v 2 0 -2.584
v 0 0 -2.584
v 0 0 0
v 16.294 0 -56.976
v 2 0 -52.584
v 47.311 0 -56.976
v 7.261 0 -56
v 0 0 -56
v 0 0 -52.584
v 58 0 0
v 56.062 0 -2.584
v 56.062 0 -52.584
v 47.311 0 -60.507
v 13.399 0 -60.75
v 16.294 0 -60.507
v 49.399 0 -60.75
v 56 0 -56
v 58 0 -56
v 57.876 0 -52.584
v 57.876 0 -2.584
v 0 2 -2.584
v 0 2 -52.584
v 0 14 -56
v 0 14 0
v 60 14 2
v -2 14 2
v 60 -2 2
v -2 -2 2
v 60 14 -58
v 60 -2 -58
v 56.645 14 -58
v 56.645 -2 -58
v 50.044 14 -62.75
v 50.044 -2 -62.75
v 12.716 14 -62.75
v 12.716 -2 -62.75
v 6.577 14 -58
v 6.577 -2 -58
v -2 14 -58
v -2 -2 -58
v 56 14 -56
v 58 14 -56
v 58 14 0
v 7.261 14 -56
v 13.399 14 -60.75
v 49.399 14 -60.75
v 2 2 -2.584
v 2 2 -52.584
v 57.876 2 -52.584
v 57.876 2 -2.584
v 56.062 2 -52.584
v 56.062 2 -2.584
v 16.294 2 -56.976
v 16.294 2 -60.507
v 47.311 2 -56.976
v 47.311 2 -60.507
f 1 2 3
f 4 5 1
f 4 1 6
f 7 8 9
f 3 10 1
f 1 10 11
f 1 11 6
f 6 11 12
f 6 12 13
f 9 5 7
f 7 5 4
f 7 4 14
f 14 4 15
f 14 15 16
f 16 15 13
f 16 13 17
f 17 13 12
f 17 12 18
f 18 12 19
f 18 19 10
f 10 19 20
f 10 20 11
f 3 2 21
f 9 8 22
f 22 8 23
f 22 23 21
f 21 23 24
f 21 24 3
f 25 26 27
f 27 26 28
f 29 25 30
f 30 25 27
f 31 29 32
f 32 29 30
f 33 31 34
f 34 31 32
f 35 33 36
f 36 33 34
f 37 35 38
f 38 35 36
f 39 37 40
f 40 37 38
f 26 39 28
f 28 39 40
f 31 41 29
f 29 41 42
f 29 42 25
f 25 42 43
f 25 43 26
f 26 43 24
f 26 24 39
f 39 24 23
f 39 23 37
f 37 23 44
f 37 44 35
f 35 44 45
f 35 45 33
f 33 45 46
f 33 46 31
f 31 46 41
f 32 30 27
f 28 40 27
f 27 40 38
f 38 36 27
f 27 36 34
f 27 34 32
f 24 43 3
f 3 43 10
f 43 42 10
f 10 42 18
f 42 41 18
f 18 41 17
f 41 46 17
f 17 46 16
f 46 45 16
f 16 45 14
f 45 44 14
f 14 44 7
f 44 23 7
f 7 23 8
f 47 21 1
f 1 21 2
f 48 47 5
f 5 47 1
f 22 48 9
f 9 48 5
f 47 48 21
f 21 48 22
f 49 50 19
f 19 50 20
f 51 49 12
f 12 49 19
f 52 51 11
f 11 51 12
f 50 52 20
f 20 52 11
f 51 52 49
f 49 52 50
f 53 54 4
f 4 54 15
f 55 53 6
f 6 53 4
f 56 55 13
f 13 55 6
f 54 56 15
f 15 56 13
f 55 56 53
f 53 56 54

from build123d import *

# Parameters (mm, degrees)
BOSS_EXTRUDE1_DEPTH = 14
SHELL1_T            = 2
SKETCH3_W           = 2
SKETCH3_H           = 50
SKETCH3_W_2         = 1.814522713
BOSS_EXTRUDE2_DEPTH = 2
SKETCH4_W           = 31.017616101
SKETCH4_H           = 3.530460369
BOSS_EXTRUDE3_DEPTH = 2


with BuildPart() as part:
    # Sketch1 → Boss-Extrude1 (new body)
    with BuildSketch(Plane(origin=(0, 0, 0), x_dir=(1, 0, 0), z_dir=(0, 1, 0))):
        Polygon((0, 0), (0, 56), (7.260584432, 56), (13.399361706, 60.750217247), (49.399361706, 60.750217247), (56, 56), (58, 56), (58, 0), align=None)
    extrude(amount=BOSS_EXTRUDE1_DEPTH)

    # Shell1
    shell1_openings = [part.faces().sort_by_distance(p)[0] for p in [
        (29.147078279, 14, -29.765448683),
    ]]
    offset(amount=SHELL1_T, openings=shell1_openings, kind=Kind.INTERSECTION)

    # Sketch3 → Boss-Extrude2 (add)
    with BuildSketch(Plane(origin=(0, 0, 0), x_dir=(1, 0, 0), z_dir=(0, 1, 0))):
        with Locations((1, 27.58353092)):
            Rectangle(SKETCH3_W, SKETCH3_H)
        with Locations((56.968981121, 27.58353092)):
            Rectangle(SKETCH3_W_2, SKETCH3_H)
    extrude(amount=BOSS_EXTRUDE2_DEPTH)

    # Sketch4 → Boss-Extrude3 (add)
    with BuildSketch(Plane(origin=(0, 0, 0), x_dir=(1, 0, 0), z_dir=(0, 1, 0))):
        with Locations((31.80262956, 58.741489624)):
            Rectangle(SKETCH4_W, SKETCH4_H)
    extrude(amount=BOSS_EXTRUDE3_DEPTH)


solid = part.part
